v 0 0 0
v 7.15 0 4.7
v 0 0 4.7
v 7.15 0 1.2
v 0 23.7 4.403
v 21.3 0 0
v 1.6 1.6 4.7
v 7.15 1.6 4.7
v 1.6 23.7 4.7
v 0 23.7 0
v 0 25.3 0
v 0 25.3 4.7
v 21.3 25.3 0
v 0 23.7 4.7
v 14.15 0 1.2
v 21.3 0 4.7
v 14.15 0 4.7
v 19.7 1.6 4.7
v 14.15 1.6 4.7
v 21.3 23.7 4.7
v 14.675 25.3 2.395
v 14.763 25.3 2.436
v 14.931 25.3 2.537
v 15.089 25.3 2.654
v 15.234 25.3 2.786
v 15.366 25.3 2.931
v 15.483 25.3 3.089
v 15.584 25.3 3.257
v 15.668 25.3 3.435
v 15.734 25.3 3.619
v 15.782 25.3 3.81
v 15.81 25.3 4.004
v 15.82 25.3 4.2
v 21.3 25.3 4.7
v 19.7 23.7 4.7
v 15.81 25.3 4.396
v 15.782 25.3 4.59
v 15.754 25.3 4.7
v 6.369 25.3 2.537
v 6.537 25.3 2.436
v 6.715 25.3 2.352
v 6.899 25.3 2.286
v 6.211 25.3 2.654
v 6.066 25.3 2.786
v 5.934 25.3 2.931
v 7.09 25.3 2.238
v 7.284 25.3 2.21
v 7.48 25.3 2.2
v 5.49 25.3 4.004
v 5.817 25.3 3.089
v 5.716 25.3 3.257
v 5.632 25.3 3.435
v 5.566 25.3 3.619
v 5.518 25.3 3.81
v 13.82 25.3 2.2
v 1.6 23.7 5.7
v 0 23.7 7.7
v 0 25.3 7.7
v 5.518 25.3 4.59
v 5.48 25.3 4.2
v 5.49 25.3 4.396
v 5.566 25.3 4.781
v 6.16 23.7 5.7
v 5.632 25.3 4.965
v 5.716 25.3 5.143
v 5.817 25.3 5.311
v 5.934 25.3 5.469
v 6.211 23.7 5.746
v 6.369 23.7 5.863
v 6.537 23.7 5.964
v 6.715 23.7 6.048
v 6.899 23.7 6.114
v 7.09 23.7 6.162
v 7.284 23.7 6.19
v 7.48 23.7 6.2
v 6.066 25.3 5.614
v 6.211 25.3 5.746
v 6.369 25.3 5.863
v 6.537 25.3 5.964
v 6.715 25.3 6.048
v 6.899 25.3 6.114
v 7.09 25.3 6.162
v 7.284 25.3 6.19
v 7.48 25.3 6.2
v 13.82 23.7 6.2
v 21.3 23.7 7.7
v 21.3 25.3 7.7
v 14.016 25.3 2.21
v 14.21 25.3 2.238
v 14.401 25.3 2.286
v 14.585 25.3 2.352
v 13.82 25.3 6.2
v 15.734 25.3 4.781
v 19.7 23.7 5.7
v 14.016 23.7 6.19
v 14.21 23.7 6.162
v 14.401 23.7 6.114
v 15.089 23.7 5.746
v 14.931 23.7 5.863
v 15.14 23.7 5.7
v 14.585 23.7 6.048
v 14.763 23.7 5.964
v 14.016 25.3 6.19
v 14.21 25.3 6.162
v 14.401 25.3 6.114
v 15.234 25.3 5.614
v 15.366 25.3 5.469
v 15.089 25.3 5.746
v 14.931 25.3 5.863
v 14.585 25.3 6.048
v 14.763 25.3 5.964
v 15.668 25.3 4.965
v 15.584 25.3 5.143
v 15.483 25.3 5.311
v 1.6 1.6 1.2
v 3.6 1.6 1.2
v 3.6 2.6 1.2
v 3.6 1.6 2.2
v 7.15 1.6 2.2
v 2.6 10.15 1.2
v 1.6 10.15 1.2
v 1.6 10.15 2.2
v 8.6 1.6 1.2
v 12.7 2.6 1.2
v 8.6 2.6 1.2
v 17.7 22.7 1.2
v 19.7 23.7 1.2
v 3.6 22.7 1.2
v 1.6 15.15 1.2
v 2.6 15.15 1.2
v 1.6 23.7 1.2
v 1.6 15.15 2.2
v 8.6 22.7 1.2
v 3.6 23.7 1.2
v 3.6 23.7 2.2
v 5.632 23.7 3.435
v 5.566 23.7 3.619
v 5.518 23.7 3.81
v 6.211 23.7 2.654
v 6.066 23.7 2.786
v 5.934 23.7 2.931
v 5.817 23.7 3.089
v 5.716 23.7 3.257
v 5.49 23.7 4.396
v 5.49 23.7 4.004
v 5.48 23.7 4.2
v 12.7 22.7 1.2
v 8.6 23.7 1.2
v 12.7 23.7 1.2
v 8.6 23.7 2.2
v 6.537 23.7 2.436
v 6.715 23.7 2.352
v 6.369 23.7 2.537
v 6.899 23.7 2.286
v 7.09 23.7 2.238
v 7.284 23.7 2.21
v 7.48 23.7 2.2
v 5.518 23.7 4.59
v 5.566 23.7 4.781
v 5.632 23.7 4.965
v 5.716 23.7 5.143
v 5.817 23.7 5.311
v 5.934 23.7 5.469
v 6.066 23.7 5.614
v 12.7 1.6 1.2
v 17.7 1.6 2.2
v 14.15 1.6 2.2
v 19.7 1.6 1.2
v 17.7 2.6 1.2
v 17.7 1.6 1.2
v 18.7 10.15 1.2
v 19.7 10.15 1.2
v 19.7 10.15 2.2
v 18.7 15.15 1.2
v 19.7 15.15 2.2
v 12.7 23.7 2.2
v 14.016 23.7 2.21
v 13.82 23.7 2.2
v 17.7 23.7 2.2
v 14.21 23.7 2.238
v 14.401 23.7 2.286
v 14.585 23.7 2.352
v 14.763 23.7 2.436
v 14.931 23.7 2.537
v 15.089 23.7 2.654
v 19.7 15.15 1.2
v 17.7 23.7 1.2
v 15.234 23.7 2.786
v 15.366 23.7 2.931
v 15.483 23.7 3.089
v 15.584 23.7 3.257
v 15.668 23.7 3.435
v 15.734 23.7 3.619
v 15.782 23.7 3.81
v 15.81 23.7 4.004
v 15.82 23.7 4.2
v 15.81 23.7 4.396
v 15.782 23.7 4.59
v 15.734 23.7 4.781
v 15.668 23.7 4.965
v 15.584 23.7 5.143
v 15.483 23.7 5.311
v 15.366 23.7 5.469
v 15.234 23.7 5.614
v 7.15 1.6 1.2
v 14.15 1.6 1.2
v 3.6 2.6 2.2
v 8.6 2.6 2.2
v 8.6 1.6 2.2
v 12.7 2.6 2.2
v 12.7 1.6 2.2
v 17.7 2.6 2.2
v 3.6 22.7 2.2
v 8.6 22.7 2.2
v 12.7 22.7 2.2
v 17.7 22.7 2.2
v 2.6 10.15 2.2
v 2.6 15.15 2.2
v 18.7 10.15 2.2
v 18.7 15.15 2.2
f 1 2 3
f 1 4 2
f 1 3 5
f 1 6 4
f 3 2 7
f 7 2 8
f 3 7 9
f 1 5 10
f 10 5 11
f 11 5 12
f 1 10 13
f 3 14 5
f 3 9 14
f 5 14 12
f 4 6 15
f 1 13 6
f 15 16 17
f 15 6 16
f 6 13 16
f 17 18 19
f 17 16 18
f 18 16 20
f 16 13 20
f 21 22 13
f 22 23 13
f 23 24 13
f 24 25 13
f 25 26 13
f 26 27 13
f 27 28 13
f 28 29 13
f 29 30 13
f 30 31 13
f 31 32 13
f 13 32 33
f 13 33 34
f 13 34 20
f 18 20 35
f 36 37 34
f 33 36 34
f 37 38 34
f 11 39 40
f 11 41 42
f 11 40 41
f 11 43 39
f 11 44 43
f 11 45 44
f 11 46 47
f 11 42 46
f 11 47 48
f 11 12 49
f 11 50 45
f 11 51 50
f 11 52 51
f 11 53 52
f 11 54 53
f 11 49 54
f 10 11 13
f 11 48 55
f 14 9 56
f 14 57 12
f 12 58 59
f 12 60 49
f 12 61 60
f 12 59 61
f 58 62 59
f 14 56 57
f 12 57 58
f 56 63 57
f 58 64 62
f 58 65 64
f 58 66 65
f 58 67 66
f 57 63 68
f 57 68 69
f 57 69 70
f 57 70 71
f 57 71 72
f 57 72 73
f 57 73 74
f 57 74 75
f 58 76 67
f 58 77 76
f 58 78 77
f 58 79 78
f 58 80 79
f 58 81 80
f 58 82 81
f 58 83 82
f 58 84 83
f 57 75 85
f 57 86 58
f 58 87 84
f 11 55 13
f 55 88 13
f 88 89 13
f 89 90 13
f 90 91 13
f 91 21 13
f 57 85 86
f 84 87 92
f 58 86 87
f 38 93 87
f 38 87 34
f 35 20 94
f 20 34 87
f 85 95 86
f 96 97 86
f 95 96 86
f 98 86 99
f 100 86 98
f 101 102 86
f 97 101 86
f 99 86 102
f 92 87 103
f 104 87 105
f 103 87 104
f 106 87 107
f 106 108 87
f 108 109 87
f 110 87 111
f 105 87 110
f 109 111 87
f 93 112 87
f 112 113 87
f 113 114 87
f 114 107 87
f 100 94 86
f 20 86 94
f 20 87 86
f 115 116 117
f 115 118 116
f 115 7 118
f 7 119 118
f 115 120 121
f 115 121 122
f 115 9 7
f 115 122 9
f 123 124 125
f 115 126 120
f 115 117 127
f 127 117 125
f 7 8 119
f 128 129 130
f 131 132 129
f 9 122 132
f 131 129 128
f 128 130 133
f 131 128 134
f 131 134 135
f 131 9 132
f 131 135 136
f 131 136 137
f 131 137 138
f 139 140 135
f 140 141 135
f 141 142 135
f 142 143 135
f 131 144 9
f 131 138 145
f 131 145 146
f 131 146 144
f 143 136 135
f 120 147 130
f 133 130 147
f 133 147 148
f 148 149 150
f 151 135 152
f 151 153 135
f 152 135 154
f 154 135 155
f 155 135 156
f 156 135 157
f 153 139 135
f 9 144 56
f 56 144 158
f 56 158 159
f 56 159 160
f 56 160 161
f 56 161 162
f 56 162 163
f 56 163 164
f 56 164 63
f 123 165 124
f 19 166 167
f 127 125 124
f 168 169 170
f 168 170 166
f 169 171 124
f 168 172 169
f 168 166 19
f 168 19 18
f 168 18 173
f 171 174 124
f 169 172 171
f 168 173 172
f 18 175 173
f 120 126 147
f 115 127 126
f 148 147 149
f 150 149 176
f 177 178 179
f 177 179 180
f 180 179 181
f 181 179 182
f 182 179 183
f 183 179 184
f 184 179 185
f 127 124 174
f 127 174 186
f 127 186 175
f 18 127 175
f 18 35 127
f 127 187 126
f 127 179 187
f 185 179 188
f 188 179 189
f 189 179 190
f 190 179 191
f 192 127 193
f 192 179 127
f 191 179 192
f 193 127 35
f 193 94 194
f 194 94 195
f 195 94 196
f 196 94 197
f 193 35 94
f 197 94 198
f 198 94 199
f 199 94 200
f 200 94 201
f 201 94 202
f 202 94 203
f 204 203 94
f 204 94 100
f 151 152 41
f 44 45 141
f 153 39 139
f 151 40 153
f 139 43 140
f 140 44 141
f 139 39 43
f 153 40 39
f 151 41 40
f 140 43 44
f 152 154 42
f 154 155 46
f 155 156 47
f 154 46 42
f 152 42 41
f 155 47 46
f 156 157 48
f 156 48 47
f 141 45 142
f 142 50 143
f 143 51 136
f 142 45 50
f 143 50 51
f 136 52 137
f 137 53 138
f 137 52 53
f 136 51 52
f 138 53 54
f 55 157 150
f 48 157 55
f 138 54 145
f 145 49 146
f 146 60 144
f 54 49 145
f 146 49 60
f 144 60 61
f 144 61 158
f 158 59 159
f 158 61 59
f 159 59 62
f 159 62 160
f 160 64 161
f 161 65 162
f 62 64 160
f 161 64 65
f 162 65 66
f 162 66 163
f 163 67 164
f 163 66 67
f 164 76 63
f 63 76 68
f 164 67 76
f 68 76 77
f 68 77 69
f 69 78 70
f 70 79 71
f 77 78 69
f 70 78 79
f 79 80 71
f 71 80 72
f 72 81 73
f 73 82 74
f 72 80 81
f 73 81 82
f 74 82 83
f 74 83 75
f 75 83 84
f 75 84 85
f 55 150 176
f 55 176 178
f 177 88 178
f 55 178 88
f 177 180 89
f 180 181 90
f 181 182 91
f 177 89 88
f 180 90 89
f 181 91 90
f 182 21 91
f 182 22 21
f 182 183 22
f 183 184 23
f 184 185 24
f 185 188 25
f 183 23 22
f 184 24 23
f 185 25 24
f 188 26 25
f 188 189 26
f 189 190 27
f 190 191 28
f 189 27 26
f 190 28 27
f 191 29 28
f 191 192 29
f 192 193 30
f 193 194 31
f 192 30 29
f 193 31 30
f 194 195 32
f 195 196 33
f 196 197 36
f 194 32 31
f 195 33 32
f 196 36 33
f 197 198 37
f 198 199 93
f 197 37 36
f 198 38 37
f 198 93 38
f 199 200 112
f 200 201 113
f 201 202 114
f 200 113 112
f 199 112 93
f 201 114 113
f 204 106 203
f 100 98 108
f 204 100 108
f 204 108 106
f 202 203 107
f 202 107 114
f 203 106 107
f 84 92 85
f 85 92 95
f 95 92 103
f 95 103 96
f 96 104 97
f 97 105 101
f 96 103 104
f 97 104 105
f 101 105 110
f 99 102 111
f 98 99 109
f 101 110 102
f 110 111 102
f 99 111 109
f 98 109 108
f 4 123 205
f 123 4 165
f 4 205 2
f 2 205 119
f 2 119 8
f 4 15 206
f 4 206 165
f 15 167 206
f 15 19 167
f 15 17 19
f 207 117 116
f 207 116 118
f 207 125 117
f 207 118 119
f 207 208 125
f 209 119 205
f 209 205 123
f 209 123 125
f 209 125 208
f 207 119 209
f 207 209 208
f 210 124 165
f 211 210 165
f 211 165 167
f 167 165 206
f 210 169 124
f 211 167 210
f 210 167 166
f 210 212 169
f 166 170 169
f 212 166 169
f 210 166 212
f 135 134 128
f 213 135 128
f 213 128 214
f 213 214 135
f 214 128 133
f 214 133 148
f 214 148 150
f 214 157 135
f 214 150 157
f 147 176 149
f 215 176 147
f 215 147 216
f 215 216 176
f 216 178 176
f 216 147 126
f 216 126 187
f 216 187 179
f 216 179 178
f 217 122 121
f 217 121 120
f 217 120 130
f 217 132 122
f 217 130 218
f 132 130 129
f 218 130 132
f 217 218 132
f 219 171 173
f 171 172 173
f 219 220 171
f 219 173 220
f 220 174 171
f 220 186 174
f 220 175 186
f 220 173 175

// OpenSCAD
// ============================================================
//  Seeed XIAO nRF52840 — MCU Tub / Cradle
//  Separate part to position freely alongside body.scad
//
//  Board dimensions (official):
//    PCB:       21.5 mm (L) × 17.5 mm (W) × 1.0 mm (thick)
//    Total H:   ~3.5 mm incl. components on top
//    USB-C:     on the +Y short end
//               connector body: 8.94 mm wide × 3.26 mm tall
//
//  Tub orientation:
//    X = width  (17.5 mm direction)
//    Y = length (21.5 mm, USB-C end at +Y)
//    Z = height (opens upward, board drops in from top)
// ============================================================

// --- Board dimensions ---
board_l       = 21.5;   // PCB length  (Y)
board_w       = 17.5;   // PCB width   (X)
board_h       = 1.0;    // PCB thickness
comp_h        = 2.5;    // tallest components above PCB (excl. USB-C)
tol           = 0.3;    // clearance around board on each side

// --- Tub wall & floor (defined early so other vars can use them) ---
wall          = 1.6;    // wall thickness
floor_t       = 1.2;    // floor thickness

// --- USB-C connector geometry ---
usbc_conn_w   = 8.94;              // connector width (IEC spec)
usbc_conn_h   = 4;             // connector height (typical SMD receptacle)
usbc_hole_r   = usbc_conn_h / 2;  // end radius fixed to connector height → keeps oval shape
usbc_hole_w   = usbc_conn_w + 1.4; // +1.4 mm total clearance
usbc_hole_h   = usbc_conn_h + 1.9; // +1.9 mm total clearance
// Z-center of connector measured from tub floor:
usbc_center_z = floor_t + board_h + usbc_conn_h / 2;
// Front wall height: floor + PCB + connector + 1.5 mm margin
front_wall_h  = floor_t + board_h + usbc_conn_h + 1.5;

// --- Battery solder cutout (-Y back wall) ---
batt_w        = 7.0;   // width — covers BAT+/BAT- pads
batt_h        = 3.5;   // height — clears PCB + some room
batt_z        = floor_t; // starts at tub floor level

// --- Derived internals ---
inner_l   = board_l + 2 * tol;
inner_w   = board_w + 2 * tol;
inner_h   = board_h + comp_h;

outer_l   = inner_l + 2 * wall;
outer_w   = inner_w + 2 * wall;
outer_h   = floor_t + inner_h;   // height of back/side walls (open top)

// --- Ledge parameters ---
ledge_t   = 1.0;   // protrusion into pocket
ledge_h   = board_h;
ledge_len = 5.0;
corner_gap = 2.0;

module xiao_tub() {
    difference() {
        union() {
            // Base box (back + side walls at normal height)
            cube([outer_w, outer_l, outer_h]);

            // Raised front wall (+Y) to enclose USB-C connector
            translate([0, outer_l - wall, 0])
                cube([outer_w, wall, front_wall_h]);
        }

        // --- Inner pocket ---
        translate([wall, wall, floor_t])
            cube([inner_w, inner_l, inner_h + 1]);

        // --- USB-C oval hole in raised front wall ---
        // rotate([90,0,0]) maps +Z → -Y, so starting at outer_l+1 cuts back through the wall
        translate([outer_w / 2, outer_l + 1, usbc_center_z])
            rotate([90, 0, 0])
                linear_extrude(height = wall + 3)
                    hull() {
                        translate([ usbc_hole_w/2 - usbc_hole_r, 0])
                            circle(r = usbc_hole_r, $fn = 64);
                        translate([-(usbc_hole_w/2 - usbc_hole_r), 0])
                            circle(r = usbc_hole_r, $fn = 64);
                    }

        // --- Battery solder cutout on -Y (back) wall ---
        translate([(outer_w - batt_w) / 2, -0.01, batt_z])
            cube([batt_w, wall + 2, batt_h]);
    }

    // --- Board retaining ledges (all four sides) ---
    // -Y wall (back) — two ledges either side of battery cutout
    translate([wall + corner_gap, wall, floor_t])
        cube([ledge_len, ledge_t, ledge_h]);
    translate([wall + inner_w - corner_gap - ledge_len, wall, floor_t])
        cube([ledge_len, ledge_t, ledge_h]);

    // +Y wall (front) — two ledges either side of USB-C hole
    translate([wall + corner_gap, wall + inner_l - ledge_t, floor_t])
        cube([ledge_len, ledge_t, ledge_h]);
    translate([wall + inner_w - corner_gap - ledge_len, wall + inner_l - ledge_t, floor_t])
        cube([ledge_len, ledge_t, ledge_h]);

    // -X wall (left) — one ledge centered
    translate([wall, wall + (inner_l - ledge_len) / 2, floor_t])
        cube([ledge_t, ledge_len, ledge_h]);

    // +X wall (right) — one ledge centered
    translate([wall + inner_w - ledge_t, wall + (inner_l - ledge_len) / 2, floor_t])
        cube([ledge_t, ledge_len, ledge_h]);
}

xiao_tub();

// ============================================================
//  Usage:
//    use <xiao_tub.scad>
//    translate([X,Y,Z]) rotate([RX,RY,RZ]) xiao_tub();
//
//  Key dimensions:
//    Outer (back/sides): outer_w × outer_l × outer_h  ≈ 21.7 × 25.3 × 4.7 mm
//    Front wall height:  front_wall_h                 ≈ 6.7 mm
//    Inner pocket:       inner_w × inner_l            ≈ 18.1 × 22.1 mm
//    USB-C hole:         9.34 × 3.66 mm oval, centered on connector
//    Battery cutout:     7.0 × 3.5 mm, centered, -Y wall
// ============================================================
